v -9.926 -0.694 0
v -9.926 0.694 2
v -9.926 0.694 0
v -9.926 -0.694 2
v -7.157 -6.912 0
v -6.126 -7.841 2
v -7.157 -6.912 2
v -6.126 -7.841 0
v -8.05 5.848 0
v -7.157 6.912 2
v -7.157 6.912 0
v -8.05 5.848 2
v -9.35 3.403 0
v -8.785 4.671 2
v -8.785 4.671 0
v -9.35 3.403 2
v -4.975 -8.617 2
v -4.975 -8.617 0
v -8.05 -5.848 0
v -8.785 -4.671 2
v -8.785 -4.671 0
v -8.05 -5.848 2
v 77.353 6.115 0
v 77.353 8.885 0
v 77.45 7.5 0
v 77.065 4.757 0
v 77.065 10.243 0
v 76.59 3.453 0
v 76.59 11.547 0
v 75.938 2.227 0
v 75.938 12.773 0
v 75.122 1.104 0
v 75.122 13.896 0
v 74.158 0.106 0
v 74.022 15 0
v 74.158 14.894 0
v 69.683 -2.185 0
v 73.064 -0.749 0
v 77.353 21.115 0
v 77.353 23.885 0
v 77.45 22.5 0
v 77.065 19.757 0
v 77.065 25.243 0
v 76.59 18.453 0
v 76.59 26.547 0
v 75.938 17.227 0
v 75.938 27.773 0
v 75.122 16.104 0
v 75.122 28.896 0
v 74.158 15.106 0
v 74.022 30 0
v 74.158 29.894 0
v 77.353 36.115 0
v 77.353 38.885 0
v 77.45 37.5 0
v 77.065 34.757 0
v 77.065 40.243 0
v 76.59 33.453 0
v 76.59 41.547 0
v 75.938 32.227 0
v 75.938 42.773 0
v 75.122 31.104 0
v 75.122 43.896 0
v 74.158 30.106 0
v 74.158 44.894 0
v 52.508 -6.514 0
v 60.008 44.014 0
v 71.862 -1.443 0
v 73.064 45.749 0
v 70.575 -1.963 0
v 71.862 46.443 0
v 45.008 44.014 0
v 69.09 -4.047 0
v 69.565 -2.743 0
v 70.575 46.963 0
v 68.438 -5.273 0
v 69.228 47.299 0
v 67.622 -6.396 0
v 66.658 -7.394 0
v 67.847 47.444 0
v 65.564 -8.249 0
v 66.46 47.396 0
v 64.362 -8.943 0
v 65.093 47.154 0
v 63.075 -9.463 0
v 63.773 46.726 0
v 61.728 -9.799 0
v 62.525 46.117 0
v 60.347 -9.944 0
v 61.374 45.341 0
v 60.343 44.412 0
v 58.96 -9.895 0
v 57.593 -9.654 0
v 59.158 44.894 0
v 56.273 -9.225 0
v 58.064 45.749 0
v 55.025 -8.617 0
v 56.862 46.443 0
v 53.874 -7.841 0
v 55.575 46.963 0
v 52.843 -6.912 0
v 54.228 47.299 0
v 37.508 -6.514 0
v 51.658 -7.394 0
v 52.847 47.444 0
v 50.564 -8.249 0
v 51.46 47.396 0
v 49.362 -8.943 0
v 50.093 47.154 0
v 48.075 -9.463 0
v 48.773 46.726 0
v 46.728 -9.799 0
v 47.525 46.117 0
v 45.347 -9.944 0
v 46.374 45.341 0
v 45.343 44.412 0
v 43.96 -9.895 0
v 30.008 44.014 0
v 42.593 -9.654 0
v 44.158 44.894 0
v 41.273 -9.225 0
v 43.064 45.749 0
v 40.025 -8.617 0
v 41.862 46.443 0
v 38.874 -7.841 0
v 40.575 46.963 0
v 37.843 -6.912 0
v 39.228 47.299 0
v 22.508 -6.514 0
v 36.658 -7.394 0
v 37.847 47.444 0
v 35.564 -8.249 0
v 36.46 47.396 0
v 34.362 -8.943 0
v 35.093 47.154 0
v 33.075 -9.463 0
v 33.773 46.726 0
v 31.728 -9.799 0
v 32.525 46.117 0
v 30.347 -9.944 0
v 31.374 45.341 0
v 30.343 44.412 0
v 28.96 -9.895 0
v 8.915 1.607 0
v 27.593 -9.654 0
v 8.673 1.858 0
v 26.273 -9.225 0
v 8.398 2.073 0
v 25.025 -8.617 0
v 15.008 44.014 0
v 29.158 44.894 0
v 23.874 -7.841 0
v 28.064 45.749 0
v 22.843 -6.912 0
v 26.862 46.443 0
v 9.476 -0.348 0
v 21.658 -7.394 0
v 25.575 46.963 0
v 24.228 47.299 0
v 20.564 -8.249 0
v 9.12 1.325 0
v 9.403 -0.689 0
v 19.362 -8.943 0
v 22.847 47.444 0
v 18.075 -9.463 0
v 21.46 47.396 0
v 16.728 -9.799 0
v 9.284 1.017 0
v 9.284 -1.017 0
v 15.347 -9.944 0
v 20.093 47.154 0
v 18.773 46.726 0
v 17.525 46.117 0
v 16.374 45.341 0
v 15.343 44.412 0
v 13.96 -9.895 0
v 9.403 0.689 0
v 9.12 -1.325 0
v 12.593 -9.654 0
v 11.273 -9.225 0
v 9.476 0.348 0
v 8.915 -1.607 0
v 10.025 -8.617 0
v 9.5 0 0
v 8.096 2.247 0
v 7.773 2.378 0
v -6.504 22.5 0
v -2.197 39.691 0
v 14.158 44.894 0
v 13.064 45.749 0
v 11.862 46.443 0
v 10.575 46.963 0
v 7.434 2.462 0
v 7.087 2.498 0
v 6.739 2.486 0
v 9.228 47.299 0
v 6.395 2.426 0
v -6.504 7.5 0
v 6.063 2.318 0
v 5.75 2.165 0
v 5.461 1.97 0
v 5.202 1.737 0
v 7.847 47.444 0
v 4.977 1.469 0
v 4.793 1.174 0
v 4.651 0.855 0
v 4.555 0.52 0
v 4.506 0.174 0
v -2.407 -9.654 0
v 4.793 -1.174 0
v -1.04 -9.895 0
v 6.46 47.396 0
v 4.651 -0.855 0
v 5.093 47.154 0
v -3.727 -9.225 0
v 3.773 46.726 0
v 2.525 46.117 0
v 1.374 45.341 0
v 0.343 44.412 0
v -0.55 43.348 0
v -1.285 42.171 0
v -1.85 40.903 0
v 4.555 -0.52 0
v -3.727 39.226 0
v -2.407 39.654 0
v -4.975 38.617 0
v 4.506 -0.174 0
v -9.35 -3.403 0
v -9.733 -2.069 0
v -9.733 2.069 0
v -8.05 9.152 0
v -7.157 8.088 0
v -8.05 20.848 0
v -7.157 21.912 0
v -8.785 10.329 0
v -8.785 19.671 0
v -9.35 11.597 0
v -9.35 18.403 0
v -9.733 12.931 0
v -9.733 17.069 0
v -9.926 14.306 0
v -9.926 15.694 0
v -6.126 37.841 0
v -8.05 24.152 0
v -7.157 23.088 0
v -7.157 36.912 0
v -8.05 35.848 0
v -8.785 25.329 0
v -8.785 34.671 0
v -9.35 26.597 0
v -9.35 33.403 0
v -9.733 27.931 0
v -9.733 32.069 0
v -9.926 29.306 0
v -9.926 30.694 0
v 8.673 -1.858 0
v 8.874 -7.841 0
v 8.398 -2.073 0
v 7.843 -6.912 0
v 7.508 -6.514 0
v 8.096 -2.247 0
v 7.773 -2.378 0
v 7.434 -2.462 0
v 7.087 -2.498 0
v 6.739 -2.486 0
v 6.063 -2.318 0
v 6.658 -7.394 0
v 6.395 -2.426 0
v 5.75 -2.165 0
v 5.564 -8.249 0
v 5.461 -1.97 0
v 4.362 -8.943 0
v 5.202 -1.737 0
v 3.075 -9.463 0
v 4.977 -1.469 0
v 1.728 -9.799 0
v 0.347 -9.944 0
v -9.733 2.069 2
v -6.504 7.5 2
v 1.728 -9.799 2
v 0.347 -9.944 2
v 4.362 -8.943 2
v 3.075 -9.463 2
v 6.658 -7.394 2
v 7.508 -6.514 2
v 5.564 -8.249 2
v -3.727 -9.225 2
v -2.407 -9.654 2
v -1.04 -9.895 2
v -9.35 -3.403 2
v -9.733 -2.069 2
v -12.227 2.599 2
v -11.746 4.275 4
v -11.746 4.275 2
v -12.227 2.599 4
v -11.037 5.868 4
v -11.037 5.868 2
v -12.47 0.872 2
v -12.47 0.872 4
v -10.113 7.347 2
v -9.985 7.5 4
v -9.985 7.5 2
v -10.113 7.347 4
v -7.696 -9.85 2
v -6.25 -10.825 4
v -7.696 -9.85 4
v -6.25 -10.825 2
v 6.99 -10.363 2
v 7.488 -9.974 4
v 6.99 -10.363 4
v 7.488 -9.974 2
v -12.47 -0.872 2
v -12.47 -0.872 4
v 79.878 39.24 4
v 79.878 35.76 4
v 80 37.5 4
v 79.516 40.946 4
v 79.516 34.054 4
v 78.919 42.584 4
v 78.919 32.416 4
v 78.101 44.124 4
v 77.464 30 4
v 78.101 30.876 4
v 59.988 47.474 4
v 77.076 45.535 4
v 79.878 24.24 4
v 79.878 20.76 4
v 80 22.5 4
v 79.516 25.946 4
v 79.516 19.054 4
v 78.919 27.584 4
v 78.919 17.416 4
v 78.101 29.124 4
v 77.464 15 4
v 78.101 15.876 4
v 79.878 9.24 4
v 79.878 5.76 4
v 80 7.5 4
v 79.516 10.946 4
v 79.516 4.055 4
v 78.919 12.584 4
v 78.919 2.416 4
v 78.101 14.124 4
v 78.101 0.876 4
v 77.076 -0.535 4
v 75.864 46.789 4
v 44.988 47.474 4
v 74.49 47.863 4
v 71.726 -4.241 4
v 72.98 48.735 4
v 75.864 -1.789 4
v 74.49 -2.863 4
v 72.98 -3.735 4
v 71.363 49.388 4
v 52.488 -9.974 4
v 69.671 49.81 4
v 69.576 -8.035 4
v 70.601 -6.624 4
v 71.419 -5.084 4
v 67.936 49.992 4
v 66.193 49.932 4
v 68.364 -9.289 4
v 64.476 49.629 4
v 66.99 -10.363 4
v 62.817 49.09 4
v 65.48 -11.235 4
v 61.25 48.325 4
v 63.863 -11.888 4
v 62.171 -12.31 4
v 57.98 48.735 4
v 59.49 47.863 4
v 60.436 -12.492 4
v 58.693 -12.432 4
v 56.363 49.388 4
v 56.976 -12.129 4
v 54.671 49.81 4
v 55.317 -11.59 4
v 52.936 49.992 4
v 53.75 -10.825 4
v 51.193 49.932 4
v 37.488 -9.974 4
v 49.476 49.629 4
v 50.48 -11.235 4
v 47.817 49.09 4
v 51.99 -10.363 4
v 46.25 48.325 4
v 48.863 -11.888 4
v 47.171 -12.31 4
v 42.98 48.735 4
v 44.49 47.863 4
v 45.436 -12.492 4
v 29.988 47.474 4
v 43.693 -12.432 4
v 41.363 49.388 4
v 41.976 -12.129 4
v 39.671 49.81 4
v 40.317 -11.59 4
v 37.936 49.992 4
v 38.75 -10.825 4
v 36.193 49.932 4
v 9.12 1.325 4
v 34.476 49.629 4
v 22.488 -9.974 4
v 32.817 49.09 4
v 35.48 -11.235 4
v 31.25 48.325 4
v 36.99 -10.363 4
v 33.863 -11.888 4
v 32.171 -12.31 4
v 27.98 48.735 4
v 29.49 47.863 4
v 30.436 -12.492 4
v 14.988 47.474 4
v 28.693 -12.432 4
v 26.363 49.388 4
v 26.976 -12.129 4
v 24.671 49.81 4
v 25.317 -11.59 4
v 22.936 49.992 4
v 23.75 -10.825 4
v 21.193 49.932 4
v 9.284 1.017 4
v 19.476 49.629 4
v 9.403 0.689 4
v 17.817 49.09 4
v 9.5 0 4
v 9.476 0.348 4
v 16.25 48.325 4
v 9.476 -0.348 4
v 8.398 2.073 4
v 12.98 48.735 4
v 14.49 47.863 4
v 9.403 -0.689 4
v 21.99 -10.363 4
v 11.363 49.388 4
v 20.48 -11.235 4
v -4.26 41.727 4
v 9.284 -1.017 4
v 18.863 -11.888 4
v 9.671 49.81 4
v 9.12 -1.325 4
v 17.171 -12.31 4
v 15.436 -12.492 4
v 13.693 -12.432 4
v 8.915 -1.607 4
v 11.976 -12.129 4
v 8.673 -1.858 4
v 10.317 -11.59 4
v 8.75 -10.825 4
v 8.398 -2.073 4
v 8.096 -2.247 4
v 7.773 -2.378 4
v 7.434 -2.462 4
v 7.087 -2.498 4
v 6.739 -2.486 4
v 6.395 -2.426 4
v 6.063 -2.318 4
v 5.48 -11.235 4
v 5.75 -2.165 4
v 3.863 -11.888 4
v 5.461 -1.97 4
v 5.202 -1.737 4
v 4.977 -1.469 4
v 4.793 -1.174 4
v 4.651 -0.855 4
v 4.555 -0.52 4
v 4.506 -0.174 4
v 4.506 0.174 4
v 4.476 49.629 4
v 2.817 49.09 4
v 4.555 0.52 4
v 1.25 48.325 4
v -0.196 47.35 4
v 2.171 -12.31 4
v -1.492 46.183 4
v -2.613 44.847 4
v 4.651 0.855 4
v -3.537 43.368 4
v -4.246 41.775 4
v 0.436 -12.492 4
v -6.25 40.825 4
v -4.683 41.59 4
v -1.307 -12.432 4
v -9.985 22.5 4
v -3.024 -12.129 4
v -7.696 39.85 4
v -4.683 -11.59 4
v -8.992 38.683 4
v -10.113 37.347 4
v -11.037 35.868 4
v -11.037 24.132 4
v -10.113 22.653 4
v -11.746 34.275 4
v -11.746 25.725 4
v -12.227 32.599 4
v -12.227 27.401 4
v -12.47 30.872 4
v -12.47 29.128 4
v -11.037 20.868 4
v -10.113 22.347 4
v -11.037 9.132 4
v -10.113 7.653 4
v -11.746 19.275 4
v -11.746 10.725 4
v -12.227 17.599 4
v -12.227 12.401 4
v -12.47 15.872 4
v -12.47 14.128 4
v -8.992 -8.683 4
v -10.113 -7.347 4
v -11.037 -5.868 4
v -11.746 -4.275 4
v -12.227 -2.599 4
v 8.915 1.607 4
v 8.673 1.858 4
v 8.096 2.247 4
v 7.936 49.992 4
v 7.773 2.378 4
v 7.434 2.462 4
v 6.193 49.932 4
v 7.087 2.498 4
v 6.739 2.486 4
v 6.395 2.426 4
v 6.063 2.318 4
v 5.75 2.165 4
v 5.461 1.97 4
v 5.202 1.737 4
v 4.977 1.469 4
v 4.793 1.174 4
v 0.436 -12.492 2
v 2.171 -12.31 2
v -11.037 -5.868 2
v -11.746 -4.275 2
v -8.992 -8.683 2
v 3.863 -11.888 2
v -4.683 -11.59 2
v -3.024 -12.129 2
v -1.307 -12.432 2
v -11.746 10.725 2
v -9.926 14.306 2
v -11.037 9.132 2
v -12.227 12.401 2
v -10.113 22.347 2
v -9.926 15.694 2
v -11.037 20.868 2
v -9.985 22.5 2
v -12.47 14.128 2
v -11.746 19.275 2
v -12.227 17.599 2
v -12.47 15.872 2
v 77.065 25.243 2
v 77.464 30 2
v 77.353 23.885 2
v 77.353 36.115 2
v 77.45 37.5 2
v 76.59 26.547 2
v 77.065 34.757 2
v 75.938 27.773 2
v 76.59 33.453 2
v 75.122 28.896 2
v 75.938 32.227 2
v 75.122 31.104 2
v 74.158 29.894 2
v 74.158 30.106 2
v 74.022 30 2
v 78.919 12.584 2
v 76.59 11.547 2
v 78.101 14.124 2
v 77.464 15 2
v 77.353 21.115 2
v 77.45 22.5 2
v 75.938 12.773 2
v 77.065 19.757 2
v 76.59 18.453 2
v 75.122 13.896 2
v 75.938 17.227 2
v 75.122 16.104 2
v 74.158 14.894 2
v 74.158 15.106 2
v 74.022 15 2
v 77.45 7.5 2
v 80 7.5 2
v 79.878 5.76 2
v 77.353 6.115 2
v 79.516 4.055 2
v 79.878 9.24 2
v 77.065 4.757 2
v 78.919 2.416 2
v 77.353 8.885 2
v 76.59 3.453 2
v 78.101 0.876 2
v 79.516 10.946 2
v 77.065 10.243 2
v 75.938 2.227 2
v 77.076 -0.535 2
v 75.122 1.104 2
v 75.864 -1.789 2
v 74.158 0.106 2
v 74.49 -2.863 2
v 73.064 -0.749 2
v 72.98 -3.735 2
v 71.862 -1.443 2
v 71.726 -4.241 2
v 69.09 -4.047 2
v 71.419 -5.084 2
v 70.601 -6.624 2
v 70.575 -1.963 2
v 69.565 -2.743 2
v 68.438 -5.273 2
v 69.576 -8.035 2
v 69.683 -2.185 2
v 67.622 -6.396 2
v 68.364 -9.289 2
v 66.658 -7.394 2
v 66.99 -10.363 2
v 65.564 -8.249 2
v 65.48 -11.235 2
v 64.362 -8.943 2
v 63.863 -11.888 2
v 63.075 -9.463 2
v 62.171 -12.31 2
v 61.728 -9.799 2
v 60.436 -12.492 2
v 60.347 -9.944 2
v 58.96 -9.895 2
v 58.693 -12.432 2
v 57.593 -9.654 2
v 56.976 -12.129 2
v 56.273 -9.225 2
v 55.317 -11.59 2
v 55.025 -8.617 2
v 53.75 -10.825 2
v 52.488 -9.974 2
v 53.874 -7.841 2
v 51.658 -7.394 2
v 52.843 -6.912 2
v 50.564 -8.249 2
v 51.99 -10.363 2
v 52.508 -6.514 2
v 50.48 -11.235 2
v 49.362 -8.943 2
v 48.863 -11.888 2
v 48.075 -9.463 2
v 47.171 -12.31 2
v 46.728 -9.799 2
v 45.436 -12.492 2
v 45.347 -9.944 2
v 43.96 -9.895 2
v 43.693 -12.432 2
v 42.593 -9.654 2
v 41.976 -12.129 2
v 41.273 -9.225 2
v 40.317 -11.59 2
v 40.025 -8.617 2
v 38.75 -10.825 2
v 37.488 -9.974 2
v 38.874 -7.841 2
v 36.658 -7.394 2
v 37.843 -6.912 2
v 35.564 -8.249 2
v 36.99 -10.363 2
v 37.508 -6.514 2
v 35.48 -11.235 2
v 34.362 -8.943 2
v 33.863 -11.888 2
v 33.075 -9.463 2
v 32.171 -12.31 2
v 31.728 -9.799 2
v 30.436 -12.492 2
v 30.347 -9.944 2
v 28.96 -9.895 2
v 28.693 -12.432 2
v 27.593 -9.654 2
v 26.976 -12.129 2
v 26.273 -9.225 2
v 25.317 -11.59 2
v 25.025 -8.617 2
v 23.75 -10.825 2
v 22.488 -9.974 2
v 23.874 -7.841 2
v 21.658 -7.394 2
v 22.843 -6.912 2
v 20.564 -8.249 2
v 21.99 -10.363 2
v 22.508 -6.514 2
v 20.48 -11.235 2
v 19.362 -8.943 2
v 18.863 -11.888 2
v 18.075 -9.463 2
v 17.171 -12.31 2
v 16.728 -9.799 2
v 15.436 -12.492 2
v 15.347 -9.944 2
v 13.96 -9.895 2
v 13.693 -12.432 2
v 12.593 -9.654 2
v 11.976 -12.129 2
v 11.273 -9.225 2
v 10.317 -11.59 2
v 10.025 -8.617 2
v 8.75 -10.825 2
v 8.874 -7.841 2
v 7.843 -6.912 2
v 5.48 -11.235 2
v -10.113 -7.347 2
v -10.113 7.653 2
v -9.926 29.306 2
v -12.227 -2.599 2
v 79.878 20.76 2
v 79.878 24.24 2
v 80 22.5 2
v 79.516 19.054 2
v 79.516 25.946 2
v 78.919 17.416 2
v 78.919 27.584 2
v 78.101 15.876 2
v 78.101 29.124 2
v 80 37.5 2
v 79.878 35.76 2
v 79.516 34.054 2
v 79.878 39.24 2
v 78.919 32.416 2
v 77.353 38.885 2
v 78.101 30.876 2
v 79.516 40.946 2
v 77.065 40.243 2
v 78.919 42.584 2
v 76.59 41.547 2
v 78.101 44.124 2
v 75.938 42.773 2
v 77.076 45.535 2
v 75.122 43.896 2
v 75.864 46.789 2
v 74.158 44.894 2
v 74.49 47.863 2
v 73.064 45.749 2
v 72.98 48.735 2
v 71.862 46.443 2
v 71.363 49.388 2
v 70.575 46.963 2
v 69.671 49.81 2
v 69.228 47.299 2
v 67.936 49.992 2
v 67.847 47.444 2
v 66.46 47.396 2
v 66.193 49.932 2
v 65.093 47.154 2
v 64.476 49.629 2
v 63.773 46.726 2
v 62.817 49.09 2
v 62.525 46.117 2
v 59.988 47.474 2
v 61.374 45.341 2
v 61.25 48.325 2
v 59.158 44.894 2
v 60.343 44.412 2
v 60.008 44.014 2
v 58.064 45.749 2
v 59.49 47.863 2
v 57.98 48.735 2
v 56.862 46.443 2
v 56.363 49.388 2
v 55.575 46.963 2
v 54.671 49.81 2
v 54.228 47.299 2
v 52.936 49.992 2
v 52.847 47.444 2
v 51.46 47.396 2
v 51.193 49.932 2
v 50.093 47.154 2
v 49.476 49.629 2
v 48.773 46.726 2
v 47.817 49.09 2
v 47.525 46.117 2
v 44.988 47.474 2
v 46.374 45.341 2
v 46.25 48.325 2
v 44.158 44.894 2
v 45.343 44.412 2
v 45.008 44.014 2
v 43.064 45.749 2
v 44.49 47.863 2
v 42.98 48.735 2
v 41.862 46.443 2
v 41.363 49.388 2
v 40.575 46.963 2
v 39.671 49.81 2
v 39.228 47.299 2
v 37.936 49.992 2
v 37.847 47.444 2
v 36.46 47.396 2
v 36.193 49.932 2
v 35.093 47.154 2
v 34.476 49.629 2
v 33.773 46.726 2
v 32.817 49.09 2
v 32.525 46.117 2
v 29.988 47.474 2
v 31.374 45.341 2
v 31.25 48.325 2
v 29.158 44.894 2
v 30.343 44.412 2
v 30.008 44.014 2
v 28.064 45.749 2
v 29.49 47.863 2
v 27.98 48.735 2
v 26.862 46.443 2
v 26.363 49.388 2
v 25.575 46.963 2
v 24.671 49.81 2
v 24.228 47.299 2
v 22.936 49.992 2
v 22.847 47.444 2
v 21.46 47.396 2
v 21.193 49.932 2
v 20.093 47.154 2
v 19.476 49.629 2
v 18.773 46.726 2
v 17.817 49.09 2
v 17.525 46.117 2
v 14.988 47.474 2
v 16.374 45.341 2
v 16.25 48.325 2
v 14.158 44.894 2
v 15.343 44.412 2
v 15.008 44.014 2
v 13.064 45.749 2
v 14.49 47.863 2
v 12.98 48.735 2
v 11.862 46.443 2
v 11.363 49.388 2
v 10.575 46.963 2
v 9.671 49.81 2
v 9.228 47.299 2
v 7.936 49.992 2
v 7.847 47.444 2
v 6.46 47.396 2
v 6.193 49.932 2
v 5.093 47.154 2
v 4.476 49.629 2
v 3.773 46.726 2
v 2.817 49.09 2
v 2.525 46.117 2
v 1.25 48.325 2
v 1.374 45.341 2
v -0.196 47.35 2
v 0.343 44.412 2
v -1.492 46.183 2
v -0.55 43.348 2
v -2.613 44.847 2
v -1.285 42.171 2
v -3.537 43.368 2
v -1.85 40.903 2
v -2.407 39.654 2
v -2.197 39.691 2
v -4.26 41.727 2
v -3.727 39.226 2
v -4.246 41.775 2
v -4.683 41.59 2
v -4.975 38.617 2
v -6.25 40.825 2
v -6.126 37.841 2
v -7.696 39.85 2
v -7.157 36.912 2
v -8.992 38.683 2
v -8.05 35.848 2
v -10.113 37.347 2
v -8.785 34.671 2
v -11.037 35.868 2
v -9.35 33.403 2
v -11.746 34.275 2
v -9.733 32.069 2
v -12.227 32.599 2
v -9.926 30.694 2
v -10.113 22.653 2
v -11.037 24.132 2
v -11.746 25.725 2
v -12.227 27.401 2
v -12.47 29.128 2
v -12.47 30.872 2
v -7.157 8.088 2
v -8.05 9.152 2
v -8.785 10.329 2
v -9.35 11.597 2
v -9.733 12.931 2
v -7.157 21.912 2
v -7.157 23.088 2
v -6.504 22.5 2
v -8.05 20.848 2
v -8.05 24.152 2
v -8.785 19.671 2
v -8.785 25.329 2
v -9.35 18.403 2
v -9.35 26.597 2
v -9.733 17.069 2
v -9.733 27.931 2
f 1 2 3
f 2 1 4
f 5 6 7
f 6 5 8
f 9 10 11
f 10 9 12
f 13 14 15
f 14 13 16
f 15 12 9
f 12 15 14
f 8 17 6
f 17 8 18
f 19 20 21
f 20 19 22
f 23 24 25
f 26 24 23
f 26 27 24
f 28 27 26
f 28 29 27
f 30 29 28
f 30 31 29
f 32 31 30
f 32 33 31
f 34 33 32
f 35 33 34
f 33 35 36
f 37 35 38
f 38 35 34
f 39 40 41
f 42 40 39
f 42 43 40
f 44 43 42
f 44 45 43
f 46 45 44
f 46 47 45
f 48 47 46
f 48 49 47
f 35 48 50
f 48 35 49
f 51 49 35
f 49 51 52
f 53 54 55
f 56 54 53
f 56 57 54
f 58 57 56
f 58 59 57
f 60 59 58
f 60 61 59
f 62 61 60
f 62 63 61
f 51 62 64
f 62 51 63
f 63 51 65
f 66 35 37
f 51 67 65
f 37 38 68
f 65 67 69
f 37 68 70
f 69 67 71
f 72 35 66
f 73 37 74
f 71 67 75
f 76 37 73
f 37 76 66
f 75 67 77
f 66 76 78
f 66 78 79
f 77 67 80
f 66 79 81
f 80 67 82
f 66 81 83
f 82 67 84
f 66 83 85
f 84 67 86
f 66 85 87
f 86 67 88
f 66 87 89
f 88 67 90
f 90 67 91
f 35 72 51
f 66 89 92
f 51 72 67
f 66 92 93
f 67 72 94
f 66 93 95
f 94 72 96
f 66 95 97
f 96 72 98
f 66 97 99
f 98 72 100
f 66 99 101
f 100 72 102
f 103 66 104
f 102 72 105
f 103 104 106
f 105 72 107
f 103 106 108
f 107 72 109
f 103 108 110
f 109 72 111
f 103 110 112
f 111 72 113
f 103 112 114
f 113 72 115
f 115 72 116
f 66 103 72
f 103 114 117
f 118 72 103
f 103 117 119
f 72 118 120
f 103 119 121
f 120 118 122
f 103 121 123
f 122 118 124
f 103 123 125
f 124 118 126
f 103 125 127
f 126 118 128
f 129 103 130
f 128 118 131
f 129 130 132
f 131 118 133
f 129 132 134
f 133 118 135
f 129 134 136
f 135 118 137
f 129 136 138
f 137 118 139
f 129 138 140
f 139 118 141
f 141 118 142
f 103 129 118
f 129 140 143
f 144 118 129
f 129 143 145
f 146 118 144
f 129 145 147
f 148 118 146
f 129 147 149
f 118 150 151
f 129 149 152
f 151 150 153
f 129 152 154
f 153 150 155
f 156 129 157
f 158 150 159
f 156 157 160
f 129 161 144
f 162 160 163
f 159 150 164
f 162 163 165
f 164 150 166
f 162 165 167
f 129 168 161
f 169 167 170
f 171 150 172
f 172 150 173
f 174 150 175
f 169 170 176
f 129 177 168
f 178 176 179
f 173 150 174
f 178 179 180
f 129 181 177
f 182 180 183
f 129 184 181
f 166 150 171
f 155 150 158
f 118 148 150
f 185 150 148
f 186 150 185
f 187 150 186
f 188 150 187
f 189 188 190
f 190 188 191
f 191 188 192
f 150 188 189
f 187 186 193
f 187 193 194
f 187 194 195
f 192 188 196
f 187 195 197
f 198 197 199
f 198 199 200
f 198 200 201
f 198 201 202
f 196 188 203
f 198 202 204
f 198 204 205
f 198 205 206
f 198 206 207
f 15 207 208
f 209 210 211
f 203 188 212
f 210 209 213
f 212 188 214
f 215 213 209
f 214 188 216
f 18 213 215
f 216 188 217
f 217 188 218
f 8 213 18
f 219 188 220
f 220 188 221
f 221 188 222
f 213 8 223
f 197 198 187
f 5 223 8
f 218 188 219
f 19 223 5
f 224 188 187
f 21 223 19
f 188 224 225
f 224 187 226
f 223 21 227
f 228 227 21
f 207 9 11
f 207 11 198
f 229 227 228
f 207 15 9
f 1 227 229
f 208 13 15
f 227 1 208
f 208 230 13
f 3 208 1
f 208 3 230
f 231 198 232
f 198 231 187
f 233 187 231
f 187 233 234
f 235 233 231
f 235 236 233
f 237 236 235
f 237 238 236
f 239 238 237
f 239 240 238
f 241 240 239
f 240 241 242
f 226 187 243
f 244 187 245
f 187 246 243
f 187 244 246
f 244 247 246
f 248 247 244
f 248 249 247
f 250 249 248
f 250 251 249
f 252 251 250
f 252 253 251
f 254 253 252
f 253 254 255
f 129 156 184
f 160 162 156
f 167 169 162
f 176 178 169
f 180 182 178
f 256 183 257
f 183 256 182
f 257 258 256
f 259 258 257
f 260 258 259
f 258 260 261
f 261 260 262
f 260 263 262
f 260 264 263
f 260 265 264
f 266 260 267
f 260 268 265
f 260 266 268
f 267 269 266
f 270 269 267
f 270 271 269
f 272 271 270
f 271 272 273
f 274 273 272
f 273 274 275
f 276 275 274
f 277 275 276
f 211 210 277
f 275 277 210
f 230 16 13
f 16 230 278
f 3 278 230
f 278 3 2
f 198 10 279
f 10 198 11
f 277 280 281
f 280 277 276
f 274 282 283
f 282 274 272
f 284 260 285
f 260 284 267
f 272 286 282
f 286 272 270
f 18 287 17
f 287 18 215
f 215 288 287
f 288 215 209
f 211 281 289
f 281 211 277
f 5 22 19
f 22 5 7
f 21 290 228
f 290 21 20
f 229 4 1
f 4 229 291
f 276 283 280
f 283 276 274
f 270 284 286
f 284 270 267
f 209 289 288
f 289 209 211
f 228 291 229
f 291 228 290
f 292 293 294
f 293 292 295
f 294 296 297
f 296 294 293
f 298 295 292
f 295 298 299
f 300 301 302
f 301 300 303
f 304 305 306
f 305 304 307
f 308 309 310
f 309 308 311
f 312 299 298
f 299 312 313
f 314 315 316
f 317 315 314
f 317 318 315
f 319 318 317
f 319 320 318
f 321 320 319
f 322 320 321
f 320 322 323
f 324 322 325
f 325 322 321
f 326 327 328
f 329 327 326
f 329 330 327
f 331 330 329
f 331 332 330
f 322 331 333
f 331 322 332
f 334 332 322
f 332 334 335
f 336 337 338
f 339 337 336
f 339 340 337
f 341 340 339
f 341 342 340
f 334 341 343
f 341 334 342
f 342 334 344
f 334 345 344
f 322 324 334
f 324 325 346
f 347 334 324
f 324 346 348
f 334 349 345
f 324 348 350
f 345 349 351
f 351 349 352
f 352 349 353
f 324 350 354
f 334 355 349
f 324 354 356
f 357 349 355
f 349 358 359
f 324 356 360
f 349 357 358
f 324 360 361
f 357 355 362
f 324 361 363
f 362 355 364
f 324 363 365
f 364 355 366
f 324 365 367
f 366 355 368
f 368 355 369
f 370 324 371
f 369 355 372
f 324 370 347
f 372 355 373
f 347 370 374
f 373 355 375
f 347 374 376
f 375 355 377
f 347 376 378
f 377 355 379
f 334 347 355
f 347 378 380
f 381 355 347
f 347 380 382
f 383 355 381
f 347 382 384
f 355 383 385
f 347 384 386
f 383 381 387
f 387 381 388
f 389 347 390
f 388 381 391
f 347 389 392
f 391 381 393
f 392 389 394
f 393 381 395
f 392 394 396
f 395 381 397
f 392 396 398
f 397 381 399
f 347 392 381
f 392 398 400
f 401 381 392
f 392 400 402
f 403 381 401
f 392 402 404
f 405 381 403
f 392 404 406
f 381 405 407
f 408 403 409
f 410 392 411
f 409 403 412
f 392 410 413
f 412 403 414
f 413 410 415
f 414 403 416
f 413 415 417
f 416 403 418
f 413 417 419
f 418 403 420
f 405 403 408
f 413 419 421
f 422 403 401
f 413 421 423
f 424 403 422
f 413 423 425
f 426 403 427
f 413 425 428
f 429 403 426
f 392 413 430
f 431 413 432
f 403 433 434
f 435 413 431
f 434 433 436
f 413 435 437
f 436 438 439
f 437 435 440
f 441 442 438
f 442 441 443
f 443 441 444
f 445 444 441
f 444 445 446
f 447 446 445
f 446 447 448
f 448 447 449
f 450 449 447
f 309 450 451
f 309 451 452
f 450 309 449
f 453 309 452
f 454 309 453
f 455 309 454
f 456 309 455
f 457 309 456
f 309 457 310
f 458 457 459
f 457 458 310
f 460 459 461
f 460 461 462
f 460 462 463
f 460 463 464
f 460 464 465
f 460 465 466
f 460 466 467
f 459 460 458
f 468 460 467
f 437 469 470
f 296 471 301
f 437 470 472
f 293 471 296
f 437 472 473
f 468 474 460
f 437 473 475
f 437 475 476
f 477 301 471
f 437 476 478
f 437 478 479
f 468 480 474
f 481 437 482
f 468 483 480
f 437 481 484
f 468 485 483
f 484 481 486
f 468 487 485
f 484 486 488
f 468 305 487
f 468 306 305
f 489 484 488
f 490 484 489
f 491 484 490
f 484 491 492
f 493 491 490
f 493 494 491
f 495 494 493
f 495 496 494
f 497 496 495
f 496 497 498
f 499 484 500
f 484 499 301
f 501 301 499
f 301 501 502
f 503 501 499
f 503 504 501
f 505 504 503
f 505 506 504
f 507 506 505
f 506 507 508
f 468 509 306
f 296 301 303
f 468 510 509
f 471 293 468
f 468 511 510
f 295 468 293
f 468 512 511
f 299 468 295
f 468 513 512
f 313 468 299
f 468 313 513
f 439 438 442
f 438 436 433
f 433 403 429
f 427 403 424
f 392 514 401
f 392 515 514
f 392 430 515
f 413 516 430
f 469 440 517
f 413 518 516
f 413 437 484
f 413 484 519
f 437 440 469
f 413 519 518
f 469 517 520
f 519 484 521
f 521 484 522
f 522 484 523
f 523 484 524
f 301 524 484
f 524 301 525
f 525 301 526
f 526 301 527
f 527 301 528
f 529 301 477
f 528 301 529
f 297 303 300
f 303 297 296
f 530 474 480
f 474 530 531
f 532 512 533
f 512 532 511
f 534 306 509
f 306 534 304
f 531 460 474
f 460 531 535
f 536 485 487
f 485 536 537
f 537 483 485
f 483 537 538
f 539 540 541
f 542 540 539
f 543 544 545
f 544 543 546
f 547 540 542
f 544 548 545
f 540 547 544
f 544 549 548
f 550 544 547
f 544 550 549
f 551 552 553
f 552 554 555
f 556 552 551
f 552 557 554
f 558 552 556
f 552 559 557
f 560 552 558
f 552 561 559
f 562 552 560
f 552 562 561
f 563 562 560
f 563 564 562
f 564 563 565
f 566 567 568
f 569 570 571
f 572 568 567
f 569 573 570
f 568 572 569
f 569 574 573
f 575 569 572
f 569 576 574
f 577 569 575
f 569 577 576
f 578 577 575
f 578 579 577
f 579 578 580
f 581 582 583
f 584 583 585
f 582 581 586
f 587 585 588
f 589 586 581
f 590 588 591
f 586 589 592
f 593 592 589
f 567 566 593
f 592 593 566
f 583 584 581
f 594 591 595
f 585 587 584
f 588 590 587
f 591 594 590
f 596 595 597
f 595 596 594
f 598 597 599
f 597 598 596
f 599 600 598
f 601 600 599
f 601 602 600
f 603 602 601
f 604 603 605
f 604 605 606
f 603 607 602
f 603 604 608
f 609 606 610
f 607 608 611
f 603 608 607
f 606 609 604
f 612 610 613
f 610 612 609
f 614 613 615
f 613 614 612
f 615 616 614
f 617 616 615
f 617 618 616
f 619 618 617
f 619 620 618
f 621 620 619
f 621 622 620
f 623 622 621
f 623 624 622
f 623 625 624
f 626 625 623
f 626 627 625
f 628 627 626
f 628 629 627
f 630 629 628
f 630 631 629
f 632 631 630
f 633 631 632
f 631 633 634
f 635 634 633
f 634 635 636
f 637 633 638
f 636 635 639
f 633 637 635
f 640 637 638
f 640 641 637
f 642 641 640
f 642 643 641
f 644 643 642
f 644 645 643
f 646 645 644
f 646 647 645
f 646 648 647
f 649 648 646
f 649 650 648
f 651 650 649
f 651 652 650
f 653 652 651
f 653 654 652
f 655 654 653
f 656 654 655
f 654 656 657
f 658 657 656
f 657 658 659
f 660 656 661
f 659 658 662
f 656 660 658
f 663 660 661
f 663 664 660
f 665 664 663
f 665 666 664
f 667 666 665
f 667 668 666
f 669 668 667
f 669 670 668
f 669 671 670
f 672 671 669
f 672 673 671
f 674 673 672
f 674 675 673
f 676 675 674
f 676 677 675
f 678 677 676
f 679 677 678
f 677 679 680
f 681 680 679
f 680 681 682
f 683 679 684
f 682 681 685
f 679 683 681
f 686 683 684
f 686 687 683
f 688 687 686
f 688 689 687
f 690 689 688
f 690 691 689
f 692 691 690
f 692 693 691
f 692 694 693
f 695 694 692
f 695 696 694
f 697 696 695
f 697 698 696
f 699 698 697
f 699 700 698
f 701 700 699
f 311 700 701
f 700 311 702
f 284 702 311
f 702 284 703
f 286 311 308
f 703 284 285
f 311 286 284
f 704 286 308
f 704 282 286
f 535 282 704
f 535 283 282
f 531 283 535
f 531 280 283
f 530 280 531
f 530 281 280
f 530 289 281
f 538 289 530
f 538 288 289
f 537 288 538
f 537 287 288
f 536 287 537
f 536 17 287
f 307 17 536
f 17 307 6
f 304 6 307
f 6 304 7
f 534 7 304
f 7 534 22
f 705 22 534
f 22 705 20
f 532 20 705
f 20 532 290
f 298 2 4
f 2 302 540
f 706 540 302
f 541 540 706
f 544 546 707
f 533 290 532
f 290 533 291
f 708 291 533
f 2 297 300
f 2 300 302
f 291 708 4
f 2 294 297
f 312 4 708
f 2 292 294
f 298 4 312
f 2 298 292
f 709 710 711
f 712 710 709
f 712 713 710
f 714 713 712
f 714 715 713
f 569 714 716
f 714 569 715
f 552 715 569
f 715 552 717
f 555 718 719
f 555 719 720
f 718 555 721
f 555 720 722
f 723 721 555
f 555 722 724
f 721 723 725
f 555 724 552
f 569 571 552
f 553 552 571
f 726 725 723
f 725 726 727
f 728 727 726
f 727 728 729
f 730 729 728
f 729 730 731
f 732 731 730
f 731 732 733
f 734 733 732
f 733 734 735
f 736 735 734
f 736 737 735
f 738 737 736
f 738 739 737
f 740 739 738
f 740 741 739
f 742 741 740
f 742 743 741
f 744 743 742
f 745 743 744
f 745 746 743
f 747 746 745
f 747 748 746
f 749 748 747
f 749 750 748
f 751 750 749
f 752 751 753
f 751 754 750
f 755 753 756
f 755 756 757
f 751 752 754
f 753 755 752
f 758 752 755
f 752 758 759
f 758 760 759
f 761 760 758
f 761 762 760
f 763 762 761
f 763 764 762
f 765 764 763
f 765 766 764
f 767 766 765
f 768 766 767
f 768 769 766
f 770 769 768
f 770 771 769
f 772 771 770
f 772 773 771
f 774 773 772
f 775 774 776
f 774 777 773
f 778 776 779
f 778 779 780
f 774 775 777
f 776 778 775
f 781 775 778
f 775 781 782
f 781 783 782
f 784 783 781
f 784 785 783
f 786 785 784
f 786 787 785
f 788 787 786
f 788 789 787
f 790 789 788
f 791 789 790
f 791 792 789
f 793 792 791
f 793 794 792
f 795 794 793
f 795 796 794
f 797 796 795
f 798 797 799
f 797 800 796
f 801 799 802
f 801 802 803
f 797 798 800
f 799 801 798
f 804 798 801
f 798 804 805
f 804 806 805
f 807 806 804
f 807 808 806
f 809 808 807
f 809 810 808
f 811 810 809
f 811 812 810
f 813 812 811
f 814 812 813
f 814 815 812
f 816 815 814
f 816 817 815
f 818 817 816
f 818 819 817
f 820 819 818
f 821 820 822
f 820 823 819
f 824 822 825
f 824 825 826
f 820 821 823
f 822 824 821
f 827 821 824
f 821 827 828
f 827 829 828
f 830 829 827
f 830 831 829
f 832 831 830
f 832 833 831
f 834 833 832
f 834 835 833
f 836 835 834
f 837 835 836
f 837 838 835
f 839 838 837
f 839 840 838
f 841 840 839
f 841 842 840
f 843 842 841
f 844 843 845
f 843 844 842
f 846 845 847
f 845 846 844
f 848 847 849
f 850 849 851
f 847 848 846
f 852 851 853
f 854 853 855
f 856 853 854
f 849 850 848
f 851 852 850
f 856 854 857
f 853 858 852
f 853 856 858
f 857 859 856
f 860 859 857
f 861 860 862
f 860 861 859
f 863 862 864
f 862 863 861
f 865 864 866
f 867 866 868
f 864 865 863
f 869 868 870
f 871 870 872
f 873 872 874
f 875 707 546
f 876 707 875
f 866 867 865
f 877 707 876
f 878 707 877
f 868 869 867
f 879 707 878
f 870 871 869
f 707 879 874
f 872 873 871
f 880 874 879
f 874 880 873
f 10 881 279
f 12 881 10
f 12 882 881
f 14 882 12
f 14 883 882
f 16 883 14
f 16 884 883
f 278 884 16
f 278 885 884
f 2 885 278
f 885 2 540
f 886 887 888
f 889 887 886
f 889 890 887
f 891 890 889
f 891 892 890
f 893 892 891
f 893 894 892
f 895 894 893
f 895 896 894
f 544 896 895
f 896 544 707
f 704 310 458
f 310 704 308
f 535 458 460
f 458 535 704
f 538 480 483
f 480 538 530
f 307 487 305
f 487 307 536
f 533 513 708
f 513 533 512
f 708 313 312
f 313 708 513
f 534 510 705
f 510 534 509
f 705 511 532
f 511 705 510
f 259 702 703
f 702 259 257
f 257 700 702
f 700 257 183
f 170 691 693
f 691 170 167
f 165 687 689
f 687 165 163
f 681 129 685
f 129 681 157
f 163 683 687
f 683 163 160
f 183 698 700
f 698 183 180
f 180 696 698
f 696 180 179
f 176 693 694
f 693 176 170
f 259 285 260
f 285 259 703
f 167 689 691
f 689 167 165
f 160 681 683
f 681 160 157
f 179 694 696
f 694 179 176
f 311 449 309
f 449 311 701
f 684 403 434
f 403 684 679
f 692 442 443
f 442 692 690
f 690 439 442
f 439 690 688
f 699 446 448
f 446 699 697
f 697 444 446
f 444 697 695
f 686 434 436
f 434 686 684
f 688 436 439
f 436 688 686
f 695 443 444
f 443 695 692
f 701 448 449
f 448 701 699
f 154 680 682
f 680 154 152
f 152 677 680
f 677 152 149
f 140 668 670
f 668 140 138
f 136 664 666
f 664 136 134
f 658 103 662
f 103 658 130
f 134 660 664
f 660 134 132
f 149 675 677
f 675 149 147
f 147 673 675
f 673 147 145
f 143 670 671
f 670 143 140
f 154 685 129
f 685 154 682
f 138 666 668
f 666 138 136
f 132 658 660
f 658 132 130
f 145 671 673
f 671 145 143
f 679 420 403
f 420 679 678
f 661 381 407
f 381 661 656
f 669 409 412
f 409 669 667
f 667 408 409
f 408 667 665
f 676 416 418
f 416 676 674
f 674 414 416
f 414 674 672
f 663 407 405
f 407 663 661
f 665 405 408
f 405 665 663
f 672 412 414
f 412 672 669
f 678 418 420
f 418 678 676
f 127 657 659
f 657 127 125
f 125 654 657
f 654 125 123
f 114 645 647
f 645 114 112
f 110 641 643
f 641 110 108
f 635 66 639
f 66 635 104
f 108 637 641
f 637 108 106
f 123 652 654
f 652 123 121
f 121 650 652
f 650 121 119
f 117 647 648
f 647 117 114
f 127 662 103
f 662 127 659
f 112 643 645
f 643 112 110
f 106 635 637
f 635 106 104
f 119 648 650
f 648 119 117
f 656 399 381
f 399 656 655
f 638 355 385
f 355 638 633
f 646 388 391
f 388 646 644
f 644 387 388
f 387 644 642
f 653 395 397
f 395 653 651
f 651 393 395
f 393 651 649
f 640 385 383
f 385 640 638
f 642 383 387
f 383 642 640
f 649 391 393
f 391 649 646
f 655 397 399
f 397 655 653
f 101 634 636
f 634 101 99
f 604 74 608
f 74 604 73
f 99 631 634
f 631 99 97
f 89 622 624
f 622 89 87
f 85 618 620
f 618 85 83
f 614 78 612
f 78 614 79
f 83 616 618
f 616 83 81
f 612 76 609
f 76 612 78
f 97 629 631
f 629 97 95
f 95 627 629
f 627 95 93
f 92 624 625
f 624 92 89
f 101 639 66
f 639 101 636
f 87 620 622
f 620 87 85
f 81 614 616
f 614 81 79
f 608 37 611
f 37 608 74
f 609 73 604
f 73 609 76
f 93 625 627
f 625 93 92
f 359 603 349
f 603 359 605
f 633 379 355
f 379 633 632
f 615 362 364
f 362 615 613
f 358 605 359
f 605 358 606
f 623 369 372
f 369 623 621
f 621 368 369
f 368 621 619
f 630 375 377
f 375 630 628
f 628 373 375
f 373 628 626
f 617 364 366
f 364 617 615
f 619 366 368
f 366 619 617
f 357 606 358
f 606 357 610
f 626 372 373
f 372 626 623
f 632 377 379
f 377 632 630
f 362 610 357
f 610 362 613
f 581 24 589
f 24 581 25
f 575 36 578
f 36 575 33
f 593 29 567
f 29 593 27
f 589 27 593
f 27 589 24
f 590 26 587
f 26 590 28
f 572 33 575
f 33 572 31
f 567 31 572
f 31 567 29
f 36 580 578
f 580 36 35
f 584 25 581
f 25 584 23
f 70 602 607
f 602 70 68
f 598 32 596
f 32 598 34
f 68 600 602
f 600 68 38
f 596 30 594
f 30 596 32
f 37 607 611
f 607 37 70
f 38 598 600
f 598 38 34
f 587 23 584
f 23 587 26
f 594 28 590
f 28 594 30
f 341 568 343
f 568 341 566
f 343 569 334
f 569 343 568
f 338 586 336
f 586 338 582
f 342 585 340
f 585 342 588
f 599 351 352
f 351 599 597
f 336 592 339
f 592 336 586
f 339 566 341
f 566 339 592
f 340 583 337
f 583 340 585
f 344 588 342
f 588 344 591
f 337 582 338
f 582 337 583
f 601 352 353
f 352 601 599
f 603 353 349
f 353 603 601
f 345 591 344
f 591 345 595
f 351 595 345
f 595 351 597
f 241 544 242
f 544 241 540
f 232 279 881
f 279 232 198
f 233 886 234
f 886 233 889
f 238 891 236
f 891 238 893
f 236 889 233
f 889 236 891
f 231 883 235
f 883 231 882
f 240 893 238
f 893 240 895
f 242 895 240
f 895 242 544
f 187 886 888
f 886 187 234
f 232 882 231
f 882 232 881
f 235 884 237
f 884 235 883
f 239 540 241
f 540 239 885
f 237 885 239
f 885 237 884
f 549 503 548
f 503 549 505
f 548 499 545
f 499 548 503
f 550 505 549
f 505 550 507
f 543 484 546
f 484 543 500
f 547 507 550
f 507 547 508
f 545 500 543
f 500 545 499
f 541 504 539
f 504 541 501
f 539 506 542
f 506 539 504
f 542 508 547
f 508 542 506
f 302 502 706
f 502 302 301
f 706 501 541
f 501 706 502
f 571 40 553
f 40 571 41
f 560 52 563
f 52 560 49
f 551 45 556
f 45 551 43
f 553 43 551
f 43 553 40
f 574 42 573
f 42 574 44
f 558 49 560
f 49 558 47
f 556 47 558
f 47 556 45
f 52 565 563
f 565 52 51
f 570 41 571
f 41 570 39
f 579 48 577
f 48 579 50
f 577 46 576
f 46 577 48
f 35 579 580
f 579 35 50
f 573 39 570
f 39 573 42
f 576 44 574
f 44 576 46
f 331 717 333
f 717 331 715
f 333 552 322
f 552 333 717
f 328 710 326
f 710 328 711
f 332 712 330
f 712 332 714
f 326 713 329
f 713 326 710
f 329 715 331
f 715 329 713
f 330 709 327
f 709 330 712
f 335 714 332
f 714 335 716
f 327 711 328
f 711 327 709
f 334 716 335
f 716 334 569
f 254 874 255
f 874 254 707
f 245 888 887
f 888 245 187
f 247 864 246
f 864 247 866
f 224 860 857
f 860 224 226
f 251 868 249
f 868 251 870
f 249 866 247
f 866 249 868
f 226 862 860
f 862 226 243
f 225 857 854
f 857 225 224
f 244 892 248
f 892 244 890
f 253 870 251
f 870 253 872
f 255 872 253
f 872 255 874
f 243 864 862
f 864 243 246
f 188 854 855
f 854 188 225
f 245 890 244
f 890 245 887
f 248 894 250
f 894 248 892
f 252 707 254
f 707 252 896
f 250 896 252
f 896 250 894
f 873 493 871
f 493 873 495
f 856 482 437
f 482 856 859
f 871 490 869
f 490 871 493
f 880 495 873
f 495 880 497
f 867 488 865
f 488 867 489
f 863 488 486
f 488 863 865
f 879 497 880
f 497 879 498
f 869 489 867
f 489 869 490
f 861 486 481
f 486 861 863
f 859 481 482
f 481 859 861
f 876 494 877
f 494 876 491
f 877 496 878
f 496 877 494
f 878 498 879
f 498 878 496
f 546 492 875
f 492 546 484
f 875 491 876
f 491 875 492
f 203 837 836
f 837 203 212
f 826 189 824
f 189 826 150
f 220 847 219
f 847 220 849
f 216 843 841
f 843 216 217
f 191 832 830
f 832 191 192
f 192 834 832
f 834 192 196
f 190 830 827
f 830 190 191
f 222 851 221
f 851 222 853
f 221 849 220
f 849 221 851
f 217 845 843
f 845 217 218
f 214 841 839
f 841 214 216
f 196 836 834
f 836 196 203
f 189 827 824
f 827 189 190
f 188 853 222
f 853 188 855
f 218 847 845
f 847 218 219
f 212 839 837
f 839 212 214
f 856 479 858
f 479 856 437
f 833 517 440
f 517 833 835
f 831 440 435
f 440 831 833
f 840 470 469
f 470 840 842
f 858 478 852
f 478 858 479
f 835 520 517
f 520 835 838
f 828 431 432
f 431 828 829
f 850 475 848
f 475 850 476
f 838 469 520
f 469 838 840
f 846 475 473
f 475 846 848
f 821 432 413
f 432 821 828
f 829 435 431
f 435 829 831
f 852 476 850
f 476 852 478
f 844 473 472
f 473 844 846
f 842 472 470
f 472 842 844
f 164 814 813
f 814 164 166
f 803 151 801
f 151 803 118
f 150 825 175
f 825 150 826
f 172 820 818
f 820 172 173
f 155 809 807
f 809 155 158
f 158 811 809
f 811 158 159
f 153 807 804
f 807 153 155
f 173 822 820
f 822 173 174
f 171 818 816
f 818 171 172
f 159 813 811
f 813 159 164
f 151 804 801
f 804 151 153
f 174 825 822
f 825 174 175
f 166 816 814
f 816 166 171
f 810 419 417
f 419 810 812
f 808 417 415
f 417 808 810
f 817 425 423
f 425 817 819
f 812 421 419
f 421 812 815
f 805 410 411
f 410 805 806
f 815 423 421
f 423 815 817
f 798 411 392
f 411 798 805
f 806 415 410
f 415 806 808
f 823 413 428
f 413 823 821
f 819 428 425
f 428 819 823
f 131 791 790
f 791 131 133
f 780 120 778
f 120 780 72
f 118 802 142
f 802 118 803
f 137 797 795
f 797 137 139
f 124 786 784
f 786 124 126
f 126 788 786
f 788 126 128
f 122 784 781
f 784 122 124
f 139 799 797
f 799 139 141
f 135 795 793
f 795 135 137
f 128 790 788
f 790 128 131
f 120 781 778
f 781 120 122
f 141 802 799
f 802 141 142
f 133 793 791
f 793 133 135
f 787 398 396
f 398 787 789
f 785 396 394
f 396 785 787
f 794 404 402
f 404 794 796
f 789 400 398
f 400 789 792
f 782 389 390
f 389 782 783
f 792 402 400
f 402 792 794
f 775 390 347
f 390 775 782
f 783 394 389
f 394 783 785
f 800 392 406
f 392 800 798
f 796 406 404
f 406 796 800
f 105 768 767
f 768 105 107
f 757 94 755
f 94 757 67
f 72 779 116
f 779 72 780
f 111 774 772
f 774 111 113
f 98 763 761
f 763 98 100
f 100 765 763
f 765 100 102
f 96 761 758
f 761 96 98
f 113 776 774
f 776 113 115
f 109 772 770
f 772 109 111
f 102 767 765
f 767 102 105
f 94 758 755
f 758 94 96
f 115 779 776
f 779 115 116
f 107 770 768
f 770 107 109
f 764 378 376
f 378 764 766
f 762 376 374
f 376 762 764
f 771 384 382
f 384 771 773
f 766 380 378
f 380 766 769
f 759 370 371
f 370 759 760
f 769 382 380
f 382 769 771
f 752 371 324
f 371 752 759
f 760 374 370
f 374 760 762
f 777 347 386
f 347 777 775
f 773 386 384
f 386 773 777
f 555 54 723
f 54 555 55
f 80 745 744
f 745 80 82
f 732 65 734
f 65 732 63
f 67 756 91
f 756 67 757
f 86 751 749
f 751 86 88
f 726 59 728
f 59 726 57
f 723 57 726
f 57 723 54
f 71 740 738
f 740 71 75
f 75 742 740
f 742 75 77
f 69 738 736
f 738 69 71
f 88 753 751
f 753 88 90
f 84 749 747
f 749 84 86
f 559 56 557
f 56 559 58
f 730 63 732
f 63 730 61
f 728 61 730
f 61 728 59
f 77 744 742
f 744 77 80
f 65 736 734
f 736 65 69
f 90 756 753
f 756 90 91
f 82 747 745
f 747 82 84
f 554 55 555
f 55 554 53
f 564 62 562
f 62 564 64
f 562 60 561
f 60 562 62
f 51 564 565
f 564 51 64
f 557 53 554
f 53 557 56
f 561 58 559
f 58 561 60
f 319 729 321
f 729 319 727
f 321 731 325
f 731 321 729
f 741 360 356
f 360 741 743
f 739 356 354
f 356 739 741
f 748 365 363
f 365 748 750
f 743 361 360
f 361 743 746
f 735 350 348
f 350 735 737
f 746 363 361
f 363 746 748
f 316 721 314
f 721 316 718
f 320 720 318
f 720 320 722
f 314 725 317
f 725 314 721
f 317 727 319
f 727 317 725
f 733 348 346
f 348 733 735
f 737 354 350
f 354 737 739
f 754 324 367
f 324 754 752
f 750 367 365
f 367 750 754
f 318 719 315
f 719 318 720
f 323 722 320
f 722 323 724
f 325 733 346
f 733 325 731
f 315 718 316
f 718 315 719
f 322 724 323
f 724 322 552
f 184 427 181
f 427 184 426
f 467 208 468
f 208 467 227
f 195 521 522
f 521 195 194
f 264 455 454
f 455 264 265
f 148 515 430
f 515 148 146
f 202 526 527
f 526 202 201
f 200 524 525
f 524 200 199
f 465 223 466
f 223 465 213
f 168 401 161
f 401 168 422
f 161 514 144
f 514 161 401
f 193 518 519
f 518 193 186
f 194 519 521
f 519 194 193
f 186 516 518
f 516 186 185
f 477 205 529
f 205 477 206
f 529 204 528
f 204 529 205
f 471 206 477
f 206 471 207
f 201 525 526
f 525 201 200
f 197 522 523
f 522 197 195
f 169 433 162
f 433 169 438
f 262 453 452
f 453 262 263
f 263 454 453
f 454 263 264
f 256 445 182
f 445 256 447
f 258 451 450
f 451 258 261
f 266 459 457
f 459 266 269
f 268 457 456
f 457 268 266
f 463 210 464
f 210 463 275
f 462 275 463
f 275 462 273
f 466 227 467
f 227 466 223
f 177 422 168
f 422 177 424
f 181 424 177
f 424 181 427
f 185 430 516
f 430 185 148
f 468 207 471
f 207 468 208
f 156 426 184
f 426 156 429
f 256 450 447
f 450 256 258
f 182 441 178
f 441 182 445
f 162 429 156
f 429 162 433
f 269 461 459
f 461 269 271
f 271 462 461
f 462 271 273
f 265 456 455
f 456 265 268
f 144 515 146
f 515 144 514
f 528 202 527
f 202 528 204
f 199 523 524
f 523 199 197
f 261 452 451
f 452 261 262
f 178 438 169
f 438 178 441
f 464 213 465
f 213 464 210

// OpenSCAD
// file: parameters.scad
resolution=45;
//resolution=10;

hole_r=1.5;
wall_thickness=2.5;
funnel_h=30;
funnel_r=2.5;
funnel_id=funnel_r*2;
funnel_od= funnel_id+(wall_thickness*2);


box_rows=6;
box_cols=5;

section_connector_h=15;

tray_h=13;
tray_section_r=10;
tray_section_id=tray_section_r*2;


lid_tolerance=.1;
lid_inset_r=tray_section_r-(lid_tolerance/2);
lid_inset_h=3;
lid_cap_h=2;
lid_h=lid_inset_h+lid_cap_h;
lid_bore_r=2.5;

//set parameters for rendering
$fn=resolution;
// main file
include <parameters.scad>;

module lid_section(){
    cylinder(h=lid_inset_h,r=lid_inset_r);//inset
    
    translate([0,0,lid_cap_h]){
        cylinder(h=lid_cap_h,r=tray_section_r+wall_thickness);
    }

}
    
module lid(){
        for ( row = [0 : box_rows-1] ){
            translate([0,row*(tray_section_r-wall_thickness),0]){
                for ( col = [0 : box_cols-1] ){
                    if(row % 2 == 0)translate([col*(tray_section_id-wall_thickness*2),0, 0]){
                        lid_section();
                    }    
                   else translate([col*(tray_section_id-wall_thickness*2)+tray_section_r-wall_thickness,0, 0]){
                        lid_section();
                    }   
                }
            }
        }
    
}
module lid_bore(){
     cylinder(h=lid_h,r=lid_bore_r);
}


difference(){
    lid();
    translate([7,0,0])lid_bore();
}
